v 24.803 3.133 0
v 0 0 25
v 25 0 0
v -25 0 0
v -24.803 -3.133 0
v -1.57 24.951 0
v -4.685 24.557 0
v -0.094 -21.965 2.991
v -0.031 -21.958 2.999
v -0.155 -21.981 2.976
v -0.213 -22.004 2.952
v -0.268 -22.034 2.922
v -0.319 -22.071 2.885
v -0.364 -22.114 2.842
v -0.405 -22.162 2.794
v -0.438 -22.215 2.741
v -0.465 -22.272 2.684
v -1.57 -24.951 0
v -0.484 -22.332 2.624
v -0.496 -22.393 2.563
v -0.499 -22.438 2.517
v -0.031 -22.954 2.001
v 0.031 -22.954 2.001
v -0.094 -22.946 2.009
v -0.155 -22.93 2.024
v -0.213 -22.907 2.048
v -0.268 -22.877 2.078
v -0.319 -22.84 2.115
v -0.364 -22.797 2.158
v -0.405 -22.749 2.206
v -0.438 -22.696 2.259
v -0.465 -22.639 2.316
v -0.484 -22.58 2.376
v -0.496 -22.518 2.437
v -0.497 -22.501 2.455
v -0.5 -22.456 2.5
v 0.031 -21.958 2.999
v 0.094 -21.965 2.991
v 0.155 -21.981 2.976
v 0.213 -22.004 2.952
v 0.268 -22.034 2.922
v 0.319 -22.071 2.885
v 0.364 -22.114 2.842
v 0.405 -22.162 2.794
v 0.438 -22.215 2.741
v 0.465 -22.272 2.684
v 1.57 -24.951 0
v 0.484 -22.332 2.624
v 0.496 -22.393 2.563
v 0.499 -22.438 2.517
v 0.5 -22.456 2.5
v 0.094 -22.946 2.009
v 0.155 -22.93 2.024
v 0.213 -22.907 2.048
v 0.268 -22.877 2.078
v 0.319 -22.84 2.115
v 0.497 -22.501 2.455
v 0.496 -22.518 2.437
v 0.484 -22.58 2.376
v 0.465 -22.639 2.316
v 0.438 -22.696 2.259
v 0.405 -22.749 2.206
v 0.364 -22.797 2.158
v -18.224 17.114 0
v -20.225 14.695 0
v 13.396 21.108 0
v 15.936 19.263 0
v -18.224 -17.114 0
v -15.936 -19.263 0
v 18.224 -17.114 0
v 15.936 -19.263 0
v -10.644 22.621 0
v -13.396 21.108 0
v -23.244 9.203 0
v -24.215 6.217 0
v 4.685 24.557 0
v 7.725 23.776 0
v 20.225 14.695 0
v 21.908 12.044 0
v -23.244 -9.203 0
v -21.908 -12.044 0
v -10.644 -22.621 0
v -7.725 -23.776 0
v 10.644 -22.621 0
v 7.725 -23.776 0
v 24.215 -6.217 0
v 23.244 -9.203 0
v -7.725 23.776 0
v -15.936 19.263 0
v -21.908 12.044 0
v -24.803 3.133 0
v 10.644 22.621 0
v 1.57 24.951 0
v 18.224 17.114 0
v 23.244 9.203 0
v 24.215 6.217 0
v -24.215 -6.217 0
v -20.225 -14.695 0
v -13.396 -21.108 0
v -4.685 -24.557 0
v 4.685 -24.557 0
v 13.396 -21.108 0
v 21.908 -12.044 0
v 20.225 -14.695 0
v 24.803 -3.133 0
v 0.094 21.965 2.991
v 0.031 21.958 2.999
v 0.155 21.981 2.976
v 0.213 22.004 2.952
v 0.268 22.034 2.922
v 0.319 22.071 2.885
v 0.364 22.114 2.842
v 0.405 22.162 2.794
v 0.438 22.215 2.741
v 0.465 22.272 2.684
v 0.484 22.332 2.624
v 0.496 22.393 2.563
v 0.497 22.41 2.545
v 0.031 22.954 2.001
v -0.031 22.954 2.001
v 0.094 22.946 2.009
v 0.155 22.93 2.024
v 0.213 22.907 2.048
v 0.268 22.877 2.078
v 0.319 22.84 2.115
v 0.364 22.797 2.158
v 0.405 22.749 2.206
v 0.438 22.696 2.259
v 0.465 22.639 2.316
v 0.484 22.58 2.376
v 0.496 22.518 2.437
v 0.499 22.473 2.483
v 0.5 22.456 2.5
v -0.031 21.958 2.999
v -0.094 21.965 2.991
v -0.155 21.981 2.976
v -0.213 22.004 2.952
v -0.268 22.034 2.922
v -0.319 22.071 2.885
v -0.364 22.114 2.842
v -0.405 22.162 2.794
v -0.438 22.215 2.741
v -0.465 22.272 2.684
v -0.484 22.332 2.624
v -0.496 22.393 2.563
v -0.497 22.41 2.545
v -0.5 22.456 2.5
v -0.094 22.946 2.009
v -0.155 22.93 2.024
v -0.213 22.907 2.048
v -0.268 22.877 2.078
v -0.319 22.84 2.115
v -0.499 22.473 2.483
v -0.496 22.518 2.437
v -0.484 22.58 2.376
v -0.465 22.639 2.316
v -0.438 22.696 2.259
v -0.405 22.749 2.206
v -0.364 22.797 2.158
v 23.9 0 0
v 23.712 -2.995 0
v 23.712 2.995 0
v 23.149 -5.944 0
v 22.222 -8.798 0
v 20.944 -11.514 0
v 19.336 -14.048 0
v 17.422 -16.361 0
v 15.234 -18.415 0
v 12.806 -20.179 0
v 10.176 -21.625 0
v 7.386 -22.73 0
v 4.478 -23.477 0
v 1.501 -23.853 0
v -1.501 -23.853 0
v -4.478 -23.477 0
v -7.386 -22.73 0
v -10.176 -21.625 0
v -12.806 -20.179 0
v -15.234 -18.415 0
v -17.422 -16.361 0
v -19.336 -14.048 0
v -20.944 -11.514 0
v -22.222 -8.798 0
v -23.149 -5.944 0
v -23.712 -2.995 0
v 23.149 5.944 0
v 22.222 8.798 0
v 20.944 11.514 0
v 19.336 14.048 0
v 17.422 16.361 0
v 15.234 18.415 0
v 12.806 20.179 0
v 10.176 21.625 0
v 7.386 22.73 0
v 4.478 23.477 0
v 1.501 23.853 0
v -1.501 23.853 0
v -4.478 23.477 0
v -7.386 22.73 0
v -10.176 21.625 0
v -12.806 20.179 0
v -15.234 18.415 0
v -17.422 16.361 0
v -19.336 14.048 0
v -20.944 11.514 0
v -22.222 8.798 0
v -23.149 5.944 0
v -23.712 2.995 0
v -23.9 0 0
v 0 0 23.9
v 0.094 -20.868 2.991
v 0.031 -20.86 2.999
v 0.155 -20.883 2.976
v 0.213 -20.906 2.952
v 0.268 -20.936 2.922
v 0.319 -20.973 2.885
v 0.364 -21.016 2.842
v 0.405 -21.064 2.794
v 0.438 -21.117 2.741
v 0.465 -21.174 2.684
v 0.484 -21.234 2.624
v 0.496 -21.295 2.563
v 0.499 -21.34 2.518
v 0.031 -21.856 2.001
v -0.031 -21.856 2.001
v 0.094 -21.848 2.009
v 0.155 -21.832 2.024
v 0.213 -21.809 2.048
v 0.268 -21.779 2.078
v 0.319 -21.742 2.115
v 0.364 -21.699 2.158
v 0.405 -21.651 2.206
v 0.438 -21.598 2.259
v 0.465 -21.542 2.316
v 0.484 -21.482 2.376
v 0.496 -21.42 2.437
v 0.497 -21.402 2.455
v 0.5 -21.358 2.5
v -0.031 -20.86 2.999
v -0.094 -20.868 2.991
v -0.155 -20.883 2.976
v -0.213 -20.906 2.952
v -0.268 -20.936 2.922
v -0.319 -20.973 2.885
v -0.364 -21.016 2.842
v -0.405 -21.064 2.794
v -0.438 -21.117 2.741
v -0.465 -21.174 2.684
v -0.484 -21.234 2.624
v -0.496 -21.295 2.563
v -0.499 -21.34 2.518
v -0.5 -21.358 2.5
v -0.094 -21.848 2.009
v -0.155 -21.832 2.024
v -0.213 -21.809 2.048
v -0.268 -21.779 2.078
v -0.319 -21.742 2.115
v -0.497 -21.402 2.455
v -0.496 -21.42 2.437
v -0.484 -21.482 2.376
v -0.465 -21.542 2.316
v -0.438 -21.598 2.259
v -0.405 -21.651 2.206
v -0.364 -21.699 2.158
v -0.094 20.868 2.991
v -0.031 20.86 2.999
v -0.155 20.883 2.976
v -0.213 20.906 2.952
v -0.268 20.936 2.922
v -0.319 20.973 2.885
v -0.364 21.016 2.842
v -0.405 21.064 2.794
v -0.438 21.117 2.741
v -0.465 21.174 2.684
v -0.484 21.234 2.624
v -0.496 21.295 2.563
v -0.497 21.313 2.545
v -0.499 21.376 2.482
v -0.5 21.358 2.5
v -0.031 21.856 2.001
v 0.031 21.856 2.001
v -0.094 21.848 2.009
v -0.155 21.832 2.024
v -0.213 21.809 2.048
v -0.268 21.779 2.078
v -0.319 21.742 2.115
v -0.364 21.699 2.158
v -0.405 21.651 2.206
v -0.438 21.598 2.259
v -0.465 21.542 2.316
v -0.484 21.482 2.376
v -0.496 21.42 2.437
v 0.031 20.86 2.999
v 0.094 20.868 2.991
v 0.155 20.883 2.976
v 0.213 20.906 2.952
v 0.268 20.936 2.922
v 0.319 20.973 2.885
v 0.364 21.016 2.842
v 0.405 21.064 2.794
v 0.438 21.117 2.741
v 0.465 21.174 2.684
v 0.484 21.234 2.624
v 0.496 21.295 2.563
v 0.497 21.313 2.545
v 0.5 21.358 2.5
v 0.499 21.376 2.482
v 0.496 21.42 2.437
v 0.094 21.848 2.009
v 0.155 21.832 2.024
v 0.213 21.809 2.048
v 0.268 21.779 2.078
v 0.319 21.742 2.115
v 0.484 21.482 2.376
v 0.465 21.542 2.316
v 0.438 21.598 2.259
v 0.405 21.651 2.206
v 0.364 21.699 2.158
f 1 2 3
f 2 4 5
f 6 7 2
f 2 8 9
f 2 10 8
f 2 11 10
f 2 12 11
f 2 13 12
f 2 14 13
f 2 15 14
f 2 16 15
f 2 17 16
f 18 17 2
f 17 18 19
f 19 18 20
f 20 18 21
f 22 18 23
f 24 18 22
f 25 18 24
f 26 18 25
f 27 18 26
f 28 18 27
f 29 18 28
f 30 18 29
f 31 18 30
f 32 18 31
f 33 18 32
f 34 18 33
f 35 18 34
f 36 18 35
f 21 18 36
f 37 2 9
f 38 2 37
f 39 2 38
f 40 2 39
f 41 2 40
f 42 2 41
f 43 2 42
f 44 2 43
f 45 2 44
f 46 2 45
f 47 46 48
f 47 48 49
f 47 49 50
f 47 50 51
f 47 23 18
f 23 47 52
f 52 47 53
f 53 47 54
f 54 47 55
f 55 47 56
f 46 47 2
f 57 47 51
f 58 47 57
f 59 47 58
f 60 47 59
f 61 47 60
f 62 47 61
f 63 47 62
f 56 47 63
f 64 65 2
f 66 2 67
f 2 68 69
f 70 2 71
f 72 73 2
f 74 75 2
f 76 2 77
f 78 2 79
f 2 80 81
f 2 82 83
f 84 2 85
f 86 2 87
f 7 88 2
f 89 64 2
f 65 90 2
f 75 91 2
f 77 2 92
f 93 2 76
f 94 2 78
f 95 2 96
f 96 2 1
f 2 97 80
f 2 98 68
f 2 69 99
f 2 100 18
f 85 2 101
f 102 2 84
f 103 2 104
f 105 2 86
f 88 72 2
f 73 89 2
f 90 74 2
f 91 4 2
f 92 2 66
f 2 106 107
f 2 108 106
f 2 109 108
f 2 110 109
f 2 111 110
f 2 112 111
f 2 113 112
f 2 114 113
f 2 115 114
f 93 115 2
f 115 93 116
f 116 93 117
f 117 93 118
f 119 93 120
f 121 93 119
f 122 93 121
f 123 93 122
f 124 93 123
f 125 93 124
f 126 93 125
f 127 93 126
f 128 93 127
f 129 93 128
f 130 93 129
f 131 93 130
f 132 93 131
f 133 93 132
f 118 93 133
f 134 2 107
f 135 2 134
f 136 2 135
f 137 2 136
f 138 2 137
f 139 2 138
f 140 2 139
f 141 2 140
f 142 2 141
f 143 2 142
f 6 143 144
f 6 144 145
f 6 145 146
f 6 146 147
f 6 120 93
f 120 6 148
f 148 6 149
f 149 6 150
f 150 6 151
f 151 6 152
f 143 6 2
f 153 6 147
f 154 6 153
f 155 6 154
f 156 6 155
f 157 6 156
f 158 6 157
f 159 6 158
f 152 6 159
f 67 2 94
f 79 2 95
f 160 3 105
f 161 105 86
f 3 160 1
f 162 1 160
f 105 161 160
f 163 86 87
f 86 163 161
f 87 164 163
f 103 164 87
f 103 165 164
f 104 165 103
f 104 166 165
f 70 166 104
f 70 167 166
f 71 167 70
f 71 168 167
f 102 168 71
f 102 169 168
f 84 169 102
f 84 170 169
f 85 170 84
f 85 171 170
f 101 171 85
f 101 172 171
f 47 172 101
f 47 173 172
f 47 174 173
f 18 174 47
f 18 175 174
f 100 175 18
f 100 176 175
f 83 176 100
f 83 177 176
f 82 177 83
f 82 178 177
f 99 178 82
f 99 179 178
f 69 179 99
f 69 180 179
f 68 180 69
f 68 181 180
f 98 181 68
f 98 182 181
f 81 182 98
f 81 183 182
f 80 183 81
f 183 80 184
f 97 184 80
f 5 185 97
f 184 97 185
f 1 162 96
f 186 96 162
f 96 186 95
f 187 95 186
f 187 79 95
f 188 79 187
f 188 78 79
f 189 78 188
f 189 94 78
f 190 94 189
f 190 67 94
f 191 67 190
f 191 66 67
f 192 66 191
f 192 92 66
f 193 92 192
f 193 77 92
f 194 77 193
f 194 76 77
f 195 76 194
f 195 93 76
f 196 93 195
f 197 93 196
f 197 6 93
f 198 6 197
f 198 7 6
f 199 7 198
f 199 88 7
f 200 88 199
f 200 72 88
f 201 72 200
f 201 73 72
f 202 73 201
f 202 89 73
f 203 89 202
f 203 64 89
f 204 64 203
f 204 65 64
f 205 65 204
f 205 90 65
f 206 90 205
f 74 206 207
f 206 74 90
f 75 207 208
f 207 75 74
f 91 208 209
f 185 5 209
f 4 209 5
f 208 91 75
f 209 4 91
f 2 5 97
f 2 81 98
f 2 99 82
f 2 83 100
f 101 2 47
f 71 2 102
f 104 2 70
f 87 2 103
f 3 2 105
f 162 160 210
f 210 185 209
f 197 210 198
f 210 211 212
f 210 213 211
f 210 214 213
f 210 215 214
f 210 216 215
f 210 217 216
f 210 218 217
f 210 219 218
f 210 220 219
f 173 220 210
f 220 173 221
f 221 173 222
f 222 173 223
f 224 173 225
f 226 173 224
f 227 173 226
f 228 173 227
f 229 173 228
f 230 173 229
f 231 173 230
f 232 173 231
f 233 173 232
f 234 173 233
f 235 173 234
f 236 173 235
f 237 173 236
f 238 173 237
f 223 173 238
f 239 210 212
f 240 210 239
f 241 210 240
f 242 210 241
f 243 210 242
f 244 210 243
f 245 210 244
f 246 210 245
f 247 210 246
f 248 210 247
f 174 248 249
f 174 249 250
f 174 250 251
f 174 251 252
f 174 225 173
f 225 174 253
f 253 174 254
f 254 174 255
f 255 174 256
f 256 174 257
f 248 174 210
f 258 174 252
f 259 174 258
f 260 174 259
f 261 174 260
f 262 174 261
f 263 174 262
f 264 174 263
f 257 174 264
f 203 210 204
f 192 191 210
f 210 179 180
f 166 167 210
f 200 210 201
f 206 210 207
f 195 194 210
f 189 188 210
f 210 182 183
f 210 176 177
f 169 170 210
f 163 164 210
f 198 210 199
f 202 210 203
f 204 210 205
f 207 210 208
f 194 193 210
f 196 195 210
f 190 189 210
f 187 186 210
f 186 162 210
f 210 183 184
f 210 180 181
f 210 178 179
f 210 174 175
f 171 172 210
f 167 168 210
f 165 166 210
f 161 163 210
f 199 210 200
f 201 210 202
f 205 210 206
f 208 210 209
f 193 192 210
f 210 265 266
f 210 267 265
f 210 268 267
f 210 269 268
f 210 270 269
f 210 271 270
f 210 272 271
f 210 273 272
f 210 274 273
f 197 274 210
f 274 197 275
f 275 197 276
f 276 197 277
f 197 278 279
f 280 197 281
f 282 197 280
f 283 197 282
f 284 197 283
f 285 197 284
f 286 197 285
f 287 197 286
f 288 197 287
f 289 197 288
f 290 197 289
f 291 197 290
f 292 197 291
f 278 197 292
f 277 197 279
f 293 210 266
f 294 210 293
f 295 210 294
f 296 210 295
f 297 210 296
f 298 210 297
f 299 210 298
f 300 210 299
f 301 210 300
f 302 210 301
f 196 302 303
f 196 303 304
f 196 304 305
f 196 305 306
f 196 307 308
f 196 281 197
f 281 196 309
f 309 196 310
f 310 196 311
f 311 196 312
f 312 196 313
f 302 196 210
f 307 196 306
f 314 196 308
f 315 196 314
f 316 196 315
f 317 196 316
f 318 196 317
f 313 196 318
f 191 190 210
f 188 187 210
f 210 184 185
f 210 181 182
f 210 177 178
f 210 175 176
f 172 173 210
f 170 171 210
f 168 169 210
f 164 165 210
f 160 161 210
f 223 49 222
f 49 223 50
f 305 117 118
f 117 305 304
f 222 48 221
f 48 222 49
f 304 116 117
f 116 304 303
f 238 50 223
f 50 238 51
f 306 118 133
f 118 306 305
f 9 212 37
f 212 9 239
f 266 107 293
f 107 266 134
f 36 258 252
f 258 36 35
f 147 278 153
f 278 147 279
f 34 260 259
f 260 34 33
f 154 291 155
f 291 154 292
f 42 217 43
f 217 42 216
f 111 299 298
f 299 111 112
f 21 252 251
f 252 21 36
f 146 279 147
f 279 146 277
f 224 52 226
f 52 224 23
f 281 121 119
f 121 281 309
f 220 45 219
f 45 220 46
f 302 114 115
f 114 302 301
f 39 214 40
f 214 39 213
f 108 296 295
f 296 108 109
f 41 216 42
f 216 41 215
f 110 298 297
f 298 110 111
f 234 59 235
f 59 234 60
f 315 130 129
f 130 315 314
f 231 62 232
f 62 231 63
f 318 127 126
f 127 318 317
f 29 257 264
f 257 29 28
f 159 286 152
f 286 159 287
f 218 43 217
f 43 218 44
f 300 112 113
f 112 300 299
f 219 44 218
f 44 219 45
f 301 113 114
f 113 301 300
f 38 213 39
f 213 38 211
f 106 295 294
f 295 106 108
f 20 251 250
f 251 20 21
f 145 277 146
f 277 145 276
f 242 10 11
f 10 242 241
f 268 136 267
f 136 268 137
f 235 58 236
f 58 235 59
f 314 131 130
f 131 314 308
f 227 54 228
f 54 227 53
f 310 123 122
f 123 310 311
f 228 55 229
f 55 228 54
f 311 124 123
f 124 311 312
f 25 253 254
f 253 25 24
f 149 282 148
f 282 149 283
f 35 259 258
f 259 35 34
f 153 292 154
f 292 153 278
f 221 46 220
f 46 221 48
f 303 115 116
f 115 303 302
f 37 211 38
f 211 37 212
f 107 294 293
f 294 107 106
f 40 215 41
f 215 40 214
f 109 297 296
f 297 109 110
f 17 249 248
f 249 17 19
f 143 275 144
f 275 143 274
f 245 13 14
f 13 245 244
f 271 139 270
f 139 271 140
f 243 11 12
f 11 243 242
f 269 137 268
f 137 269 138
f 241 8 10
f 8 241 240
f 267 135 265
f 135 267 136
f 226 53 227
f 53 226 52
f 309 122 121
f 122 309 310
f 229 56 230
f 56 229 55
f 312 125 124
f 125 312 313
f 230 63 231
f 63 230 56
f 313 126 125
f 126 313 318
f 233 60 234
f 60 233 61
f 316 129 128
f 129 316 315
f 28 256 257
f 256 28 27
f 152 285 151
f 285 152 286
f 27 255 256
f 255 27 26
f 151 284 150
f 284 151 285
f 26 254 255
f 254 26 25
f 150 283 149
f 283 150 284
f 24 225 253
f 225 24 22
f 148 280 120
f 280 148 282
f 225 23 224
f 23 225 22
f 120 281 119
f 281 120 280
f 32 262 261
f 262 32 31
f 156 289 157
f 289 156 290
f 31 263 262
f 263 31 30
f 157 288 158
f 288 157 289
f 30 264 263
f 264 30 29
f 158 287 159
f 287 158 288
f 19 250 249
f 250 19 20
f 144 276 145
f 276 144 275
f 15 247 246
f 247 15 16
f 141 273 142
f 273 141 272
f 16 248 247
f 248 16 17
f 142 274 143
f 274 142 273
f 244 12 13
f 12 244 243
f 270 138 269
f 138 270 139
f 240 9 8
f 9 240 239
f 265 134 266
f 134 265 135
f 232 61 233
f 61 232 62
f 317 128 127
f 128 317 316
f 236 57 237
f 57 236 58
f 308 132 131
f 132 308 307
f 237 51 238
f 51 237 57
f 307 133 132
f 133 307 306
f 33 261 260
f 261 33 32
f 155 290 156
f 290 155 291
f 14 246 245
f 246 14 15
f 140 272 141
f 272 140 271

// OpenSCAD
$fn=50;
// Saigon style hat

module viethat(size, thickness, holesize)
{
    difference()
    {
        cylinder(size, r1=size, r2=0);
        translate([0,0,-0.1])
            cylinder(size-thickness, r1=size-thickness, r2=0);
        translate([0,0,size/10]) 
            rotate([90,0,0]) 
                cylinder(100, r=holesize, center=true);
    }
}

viethat(25, 1, 0.5);
